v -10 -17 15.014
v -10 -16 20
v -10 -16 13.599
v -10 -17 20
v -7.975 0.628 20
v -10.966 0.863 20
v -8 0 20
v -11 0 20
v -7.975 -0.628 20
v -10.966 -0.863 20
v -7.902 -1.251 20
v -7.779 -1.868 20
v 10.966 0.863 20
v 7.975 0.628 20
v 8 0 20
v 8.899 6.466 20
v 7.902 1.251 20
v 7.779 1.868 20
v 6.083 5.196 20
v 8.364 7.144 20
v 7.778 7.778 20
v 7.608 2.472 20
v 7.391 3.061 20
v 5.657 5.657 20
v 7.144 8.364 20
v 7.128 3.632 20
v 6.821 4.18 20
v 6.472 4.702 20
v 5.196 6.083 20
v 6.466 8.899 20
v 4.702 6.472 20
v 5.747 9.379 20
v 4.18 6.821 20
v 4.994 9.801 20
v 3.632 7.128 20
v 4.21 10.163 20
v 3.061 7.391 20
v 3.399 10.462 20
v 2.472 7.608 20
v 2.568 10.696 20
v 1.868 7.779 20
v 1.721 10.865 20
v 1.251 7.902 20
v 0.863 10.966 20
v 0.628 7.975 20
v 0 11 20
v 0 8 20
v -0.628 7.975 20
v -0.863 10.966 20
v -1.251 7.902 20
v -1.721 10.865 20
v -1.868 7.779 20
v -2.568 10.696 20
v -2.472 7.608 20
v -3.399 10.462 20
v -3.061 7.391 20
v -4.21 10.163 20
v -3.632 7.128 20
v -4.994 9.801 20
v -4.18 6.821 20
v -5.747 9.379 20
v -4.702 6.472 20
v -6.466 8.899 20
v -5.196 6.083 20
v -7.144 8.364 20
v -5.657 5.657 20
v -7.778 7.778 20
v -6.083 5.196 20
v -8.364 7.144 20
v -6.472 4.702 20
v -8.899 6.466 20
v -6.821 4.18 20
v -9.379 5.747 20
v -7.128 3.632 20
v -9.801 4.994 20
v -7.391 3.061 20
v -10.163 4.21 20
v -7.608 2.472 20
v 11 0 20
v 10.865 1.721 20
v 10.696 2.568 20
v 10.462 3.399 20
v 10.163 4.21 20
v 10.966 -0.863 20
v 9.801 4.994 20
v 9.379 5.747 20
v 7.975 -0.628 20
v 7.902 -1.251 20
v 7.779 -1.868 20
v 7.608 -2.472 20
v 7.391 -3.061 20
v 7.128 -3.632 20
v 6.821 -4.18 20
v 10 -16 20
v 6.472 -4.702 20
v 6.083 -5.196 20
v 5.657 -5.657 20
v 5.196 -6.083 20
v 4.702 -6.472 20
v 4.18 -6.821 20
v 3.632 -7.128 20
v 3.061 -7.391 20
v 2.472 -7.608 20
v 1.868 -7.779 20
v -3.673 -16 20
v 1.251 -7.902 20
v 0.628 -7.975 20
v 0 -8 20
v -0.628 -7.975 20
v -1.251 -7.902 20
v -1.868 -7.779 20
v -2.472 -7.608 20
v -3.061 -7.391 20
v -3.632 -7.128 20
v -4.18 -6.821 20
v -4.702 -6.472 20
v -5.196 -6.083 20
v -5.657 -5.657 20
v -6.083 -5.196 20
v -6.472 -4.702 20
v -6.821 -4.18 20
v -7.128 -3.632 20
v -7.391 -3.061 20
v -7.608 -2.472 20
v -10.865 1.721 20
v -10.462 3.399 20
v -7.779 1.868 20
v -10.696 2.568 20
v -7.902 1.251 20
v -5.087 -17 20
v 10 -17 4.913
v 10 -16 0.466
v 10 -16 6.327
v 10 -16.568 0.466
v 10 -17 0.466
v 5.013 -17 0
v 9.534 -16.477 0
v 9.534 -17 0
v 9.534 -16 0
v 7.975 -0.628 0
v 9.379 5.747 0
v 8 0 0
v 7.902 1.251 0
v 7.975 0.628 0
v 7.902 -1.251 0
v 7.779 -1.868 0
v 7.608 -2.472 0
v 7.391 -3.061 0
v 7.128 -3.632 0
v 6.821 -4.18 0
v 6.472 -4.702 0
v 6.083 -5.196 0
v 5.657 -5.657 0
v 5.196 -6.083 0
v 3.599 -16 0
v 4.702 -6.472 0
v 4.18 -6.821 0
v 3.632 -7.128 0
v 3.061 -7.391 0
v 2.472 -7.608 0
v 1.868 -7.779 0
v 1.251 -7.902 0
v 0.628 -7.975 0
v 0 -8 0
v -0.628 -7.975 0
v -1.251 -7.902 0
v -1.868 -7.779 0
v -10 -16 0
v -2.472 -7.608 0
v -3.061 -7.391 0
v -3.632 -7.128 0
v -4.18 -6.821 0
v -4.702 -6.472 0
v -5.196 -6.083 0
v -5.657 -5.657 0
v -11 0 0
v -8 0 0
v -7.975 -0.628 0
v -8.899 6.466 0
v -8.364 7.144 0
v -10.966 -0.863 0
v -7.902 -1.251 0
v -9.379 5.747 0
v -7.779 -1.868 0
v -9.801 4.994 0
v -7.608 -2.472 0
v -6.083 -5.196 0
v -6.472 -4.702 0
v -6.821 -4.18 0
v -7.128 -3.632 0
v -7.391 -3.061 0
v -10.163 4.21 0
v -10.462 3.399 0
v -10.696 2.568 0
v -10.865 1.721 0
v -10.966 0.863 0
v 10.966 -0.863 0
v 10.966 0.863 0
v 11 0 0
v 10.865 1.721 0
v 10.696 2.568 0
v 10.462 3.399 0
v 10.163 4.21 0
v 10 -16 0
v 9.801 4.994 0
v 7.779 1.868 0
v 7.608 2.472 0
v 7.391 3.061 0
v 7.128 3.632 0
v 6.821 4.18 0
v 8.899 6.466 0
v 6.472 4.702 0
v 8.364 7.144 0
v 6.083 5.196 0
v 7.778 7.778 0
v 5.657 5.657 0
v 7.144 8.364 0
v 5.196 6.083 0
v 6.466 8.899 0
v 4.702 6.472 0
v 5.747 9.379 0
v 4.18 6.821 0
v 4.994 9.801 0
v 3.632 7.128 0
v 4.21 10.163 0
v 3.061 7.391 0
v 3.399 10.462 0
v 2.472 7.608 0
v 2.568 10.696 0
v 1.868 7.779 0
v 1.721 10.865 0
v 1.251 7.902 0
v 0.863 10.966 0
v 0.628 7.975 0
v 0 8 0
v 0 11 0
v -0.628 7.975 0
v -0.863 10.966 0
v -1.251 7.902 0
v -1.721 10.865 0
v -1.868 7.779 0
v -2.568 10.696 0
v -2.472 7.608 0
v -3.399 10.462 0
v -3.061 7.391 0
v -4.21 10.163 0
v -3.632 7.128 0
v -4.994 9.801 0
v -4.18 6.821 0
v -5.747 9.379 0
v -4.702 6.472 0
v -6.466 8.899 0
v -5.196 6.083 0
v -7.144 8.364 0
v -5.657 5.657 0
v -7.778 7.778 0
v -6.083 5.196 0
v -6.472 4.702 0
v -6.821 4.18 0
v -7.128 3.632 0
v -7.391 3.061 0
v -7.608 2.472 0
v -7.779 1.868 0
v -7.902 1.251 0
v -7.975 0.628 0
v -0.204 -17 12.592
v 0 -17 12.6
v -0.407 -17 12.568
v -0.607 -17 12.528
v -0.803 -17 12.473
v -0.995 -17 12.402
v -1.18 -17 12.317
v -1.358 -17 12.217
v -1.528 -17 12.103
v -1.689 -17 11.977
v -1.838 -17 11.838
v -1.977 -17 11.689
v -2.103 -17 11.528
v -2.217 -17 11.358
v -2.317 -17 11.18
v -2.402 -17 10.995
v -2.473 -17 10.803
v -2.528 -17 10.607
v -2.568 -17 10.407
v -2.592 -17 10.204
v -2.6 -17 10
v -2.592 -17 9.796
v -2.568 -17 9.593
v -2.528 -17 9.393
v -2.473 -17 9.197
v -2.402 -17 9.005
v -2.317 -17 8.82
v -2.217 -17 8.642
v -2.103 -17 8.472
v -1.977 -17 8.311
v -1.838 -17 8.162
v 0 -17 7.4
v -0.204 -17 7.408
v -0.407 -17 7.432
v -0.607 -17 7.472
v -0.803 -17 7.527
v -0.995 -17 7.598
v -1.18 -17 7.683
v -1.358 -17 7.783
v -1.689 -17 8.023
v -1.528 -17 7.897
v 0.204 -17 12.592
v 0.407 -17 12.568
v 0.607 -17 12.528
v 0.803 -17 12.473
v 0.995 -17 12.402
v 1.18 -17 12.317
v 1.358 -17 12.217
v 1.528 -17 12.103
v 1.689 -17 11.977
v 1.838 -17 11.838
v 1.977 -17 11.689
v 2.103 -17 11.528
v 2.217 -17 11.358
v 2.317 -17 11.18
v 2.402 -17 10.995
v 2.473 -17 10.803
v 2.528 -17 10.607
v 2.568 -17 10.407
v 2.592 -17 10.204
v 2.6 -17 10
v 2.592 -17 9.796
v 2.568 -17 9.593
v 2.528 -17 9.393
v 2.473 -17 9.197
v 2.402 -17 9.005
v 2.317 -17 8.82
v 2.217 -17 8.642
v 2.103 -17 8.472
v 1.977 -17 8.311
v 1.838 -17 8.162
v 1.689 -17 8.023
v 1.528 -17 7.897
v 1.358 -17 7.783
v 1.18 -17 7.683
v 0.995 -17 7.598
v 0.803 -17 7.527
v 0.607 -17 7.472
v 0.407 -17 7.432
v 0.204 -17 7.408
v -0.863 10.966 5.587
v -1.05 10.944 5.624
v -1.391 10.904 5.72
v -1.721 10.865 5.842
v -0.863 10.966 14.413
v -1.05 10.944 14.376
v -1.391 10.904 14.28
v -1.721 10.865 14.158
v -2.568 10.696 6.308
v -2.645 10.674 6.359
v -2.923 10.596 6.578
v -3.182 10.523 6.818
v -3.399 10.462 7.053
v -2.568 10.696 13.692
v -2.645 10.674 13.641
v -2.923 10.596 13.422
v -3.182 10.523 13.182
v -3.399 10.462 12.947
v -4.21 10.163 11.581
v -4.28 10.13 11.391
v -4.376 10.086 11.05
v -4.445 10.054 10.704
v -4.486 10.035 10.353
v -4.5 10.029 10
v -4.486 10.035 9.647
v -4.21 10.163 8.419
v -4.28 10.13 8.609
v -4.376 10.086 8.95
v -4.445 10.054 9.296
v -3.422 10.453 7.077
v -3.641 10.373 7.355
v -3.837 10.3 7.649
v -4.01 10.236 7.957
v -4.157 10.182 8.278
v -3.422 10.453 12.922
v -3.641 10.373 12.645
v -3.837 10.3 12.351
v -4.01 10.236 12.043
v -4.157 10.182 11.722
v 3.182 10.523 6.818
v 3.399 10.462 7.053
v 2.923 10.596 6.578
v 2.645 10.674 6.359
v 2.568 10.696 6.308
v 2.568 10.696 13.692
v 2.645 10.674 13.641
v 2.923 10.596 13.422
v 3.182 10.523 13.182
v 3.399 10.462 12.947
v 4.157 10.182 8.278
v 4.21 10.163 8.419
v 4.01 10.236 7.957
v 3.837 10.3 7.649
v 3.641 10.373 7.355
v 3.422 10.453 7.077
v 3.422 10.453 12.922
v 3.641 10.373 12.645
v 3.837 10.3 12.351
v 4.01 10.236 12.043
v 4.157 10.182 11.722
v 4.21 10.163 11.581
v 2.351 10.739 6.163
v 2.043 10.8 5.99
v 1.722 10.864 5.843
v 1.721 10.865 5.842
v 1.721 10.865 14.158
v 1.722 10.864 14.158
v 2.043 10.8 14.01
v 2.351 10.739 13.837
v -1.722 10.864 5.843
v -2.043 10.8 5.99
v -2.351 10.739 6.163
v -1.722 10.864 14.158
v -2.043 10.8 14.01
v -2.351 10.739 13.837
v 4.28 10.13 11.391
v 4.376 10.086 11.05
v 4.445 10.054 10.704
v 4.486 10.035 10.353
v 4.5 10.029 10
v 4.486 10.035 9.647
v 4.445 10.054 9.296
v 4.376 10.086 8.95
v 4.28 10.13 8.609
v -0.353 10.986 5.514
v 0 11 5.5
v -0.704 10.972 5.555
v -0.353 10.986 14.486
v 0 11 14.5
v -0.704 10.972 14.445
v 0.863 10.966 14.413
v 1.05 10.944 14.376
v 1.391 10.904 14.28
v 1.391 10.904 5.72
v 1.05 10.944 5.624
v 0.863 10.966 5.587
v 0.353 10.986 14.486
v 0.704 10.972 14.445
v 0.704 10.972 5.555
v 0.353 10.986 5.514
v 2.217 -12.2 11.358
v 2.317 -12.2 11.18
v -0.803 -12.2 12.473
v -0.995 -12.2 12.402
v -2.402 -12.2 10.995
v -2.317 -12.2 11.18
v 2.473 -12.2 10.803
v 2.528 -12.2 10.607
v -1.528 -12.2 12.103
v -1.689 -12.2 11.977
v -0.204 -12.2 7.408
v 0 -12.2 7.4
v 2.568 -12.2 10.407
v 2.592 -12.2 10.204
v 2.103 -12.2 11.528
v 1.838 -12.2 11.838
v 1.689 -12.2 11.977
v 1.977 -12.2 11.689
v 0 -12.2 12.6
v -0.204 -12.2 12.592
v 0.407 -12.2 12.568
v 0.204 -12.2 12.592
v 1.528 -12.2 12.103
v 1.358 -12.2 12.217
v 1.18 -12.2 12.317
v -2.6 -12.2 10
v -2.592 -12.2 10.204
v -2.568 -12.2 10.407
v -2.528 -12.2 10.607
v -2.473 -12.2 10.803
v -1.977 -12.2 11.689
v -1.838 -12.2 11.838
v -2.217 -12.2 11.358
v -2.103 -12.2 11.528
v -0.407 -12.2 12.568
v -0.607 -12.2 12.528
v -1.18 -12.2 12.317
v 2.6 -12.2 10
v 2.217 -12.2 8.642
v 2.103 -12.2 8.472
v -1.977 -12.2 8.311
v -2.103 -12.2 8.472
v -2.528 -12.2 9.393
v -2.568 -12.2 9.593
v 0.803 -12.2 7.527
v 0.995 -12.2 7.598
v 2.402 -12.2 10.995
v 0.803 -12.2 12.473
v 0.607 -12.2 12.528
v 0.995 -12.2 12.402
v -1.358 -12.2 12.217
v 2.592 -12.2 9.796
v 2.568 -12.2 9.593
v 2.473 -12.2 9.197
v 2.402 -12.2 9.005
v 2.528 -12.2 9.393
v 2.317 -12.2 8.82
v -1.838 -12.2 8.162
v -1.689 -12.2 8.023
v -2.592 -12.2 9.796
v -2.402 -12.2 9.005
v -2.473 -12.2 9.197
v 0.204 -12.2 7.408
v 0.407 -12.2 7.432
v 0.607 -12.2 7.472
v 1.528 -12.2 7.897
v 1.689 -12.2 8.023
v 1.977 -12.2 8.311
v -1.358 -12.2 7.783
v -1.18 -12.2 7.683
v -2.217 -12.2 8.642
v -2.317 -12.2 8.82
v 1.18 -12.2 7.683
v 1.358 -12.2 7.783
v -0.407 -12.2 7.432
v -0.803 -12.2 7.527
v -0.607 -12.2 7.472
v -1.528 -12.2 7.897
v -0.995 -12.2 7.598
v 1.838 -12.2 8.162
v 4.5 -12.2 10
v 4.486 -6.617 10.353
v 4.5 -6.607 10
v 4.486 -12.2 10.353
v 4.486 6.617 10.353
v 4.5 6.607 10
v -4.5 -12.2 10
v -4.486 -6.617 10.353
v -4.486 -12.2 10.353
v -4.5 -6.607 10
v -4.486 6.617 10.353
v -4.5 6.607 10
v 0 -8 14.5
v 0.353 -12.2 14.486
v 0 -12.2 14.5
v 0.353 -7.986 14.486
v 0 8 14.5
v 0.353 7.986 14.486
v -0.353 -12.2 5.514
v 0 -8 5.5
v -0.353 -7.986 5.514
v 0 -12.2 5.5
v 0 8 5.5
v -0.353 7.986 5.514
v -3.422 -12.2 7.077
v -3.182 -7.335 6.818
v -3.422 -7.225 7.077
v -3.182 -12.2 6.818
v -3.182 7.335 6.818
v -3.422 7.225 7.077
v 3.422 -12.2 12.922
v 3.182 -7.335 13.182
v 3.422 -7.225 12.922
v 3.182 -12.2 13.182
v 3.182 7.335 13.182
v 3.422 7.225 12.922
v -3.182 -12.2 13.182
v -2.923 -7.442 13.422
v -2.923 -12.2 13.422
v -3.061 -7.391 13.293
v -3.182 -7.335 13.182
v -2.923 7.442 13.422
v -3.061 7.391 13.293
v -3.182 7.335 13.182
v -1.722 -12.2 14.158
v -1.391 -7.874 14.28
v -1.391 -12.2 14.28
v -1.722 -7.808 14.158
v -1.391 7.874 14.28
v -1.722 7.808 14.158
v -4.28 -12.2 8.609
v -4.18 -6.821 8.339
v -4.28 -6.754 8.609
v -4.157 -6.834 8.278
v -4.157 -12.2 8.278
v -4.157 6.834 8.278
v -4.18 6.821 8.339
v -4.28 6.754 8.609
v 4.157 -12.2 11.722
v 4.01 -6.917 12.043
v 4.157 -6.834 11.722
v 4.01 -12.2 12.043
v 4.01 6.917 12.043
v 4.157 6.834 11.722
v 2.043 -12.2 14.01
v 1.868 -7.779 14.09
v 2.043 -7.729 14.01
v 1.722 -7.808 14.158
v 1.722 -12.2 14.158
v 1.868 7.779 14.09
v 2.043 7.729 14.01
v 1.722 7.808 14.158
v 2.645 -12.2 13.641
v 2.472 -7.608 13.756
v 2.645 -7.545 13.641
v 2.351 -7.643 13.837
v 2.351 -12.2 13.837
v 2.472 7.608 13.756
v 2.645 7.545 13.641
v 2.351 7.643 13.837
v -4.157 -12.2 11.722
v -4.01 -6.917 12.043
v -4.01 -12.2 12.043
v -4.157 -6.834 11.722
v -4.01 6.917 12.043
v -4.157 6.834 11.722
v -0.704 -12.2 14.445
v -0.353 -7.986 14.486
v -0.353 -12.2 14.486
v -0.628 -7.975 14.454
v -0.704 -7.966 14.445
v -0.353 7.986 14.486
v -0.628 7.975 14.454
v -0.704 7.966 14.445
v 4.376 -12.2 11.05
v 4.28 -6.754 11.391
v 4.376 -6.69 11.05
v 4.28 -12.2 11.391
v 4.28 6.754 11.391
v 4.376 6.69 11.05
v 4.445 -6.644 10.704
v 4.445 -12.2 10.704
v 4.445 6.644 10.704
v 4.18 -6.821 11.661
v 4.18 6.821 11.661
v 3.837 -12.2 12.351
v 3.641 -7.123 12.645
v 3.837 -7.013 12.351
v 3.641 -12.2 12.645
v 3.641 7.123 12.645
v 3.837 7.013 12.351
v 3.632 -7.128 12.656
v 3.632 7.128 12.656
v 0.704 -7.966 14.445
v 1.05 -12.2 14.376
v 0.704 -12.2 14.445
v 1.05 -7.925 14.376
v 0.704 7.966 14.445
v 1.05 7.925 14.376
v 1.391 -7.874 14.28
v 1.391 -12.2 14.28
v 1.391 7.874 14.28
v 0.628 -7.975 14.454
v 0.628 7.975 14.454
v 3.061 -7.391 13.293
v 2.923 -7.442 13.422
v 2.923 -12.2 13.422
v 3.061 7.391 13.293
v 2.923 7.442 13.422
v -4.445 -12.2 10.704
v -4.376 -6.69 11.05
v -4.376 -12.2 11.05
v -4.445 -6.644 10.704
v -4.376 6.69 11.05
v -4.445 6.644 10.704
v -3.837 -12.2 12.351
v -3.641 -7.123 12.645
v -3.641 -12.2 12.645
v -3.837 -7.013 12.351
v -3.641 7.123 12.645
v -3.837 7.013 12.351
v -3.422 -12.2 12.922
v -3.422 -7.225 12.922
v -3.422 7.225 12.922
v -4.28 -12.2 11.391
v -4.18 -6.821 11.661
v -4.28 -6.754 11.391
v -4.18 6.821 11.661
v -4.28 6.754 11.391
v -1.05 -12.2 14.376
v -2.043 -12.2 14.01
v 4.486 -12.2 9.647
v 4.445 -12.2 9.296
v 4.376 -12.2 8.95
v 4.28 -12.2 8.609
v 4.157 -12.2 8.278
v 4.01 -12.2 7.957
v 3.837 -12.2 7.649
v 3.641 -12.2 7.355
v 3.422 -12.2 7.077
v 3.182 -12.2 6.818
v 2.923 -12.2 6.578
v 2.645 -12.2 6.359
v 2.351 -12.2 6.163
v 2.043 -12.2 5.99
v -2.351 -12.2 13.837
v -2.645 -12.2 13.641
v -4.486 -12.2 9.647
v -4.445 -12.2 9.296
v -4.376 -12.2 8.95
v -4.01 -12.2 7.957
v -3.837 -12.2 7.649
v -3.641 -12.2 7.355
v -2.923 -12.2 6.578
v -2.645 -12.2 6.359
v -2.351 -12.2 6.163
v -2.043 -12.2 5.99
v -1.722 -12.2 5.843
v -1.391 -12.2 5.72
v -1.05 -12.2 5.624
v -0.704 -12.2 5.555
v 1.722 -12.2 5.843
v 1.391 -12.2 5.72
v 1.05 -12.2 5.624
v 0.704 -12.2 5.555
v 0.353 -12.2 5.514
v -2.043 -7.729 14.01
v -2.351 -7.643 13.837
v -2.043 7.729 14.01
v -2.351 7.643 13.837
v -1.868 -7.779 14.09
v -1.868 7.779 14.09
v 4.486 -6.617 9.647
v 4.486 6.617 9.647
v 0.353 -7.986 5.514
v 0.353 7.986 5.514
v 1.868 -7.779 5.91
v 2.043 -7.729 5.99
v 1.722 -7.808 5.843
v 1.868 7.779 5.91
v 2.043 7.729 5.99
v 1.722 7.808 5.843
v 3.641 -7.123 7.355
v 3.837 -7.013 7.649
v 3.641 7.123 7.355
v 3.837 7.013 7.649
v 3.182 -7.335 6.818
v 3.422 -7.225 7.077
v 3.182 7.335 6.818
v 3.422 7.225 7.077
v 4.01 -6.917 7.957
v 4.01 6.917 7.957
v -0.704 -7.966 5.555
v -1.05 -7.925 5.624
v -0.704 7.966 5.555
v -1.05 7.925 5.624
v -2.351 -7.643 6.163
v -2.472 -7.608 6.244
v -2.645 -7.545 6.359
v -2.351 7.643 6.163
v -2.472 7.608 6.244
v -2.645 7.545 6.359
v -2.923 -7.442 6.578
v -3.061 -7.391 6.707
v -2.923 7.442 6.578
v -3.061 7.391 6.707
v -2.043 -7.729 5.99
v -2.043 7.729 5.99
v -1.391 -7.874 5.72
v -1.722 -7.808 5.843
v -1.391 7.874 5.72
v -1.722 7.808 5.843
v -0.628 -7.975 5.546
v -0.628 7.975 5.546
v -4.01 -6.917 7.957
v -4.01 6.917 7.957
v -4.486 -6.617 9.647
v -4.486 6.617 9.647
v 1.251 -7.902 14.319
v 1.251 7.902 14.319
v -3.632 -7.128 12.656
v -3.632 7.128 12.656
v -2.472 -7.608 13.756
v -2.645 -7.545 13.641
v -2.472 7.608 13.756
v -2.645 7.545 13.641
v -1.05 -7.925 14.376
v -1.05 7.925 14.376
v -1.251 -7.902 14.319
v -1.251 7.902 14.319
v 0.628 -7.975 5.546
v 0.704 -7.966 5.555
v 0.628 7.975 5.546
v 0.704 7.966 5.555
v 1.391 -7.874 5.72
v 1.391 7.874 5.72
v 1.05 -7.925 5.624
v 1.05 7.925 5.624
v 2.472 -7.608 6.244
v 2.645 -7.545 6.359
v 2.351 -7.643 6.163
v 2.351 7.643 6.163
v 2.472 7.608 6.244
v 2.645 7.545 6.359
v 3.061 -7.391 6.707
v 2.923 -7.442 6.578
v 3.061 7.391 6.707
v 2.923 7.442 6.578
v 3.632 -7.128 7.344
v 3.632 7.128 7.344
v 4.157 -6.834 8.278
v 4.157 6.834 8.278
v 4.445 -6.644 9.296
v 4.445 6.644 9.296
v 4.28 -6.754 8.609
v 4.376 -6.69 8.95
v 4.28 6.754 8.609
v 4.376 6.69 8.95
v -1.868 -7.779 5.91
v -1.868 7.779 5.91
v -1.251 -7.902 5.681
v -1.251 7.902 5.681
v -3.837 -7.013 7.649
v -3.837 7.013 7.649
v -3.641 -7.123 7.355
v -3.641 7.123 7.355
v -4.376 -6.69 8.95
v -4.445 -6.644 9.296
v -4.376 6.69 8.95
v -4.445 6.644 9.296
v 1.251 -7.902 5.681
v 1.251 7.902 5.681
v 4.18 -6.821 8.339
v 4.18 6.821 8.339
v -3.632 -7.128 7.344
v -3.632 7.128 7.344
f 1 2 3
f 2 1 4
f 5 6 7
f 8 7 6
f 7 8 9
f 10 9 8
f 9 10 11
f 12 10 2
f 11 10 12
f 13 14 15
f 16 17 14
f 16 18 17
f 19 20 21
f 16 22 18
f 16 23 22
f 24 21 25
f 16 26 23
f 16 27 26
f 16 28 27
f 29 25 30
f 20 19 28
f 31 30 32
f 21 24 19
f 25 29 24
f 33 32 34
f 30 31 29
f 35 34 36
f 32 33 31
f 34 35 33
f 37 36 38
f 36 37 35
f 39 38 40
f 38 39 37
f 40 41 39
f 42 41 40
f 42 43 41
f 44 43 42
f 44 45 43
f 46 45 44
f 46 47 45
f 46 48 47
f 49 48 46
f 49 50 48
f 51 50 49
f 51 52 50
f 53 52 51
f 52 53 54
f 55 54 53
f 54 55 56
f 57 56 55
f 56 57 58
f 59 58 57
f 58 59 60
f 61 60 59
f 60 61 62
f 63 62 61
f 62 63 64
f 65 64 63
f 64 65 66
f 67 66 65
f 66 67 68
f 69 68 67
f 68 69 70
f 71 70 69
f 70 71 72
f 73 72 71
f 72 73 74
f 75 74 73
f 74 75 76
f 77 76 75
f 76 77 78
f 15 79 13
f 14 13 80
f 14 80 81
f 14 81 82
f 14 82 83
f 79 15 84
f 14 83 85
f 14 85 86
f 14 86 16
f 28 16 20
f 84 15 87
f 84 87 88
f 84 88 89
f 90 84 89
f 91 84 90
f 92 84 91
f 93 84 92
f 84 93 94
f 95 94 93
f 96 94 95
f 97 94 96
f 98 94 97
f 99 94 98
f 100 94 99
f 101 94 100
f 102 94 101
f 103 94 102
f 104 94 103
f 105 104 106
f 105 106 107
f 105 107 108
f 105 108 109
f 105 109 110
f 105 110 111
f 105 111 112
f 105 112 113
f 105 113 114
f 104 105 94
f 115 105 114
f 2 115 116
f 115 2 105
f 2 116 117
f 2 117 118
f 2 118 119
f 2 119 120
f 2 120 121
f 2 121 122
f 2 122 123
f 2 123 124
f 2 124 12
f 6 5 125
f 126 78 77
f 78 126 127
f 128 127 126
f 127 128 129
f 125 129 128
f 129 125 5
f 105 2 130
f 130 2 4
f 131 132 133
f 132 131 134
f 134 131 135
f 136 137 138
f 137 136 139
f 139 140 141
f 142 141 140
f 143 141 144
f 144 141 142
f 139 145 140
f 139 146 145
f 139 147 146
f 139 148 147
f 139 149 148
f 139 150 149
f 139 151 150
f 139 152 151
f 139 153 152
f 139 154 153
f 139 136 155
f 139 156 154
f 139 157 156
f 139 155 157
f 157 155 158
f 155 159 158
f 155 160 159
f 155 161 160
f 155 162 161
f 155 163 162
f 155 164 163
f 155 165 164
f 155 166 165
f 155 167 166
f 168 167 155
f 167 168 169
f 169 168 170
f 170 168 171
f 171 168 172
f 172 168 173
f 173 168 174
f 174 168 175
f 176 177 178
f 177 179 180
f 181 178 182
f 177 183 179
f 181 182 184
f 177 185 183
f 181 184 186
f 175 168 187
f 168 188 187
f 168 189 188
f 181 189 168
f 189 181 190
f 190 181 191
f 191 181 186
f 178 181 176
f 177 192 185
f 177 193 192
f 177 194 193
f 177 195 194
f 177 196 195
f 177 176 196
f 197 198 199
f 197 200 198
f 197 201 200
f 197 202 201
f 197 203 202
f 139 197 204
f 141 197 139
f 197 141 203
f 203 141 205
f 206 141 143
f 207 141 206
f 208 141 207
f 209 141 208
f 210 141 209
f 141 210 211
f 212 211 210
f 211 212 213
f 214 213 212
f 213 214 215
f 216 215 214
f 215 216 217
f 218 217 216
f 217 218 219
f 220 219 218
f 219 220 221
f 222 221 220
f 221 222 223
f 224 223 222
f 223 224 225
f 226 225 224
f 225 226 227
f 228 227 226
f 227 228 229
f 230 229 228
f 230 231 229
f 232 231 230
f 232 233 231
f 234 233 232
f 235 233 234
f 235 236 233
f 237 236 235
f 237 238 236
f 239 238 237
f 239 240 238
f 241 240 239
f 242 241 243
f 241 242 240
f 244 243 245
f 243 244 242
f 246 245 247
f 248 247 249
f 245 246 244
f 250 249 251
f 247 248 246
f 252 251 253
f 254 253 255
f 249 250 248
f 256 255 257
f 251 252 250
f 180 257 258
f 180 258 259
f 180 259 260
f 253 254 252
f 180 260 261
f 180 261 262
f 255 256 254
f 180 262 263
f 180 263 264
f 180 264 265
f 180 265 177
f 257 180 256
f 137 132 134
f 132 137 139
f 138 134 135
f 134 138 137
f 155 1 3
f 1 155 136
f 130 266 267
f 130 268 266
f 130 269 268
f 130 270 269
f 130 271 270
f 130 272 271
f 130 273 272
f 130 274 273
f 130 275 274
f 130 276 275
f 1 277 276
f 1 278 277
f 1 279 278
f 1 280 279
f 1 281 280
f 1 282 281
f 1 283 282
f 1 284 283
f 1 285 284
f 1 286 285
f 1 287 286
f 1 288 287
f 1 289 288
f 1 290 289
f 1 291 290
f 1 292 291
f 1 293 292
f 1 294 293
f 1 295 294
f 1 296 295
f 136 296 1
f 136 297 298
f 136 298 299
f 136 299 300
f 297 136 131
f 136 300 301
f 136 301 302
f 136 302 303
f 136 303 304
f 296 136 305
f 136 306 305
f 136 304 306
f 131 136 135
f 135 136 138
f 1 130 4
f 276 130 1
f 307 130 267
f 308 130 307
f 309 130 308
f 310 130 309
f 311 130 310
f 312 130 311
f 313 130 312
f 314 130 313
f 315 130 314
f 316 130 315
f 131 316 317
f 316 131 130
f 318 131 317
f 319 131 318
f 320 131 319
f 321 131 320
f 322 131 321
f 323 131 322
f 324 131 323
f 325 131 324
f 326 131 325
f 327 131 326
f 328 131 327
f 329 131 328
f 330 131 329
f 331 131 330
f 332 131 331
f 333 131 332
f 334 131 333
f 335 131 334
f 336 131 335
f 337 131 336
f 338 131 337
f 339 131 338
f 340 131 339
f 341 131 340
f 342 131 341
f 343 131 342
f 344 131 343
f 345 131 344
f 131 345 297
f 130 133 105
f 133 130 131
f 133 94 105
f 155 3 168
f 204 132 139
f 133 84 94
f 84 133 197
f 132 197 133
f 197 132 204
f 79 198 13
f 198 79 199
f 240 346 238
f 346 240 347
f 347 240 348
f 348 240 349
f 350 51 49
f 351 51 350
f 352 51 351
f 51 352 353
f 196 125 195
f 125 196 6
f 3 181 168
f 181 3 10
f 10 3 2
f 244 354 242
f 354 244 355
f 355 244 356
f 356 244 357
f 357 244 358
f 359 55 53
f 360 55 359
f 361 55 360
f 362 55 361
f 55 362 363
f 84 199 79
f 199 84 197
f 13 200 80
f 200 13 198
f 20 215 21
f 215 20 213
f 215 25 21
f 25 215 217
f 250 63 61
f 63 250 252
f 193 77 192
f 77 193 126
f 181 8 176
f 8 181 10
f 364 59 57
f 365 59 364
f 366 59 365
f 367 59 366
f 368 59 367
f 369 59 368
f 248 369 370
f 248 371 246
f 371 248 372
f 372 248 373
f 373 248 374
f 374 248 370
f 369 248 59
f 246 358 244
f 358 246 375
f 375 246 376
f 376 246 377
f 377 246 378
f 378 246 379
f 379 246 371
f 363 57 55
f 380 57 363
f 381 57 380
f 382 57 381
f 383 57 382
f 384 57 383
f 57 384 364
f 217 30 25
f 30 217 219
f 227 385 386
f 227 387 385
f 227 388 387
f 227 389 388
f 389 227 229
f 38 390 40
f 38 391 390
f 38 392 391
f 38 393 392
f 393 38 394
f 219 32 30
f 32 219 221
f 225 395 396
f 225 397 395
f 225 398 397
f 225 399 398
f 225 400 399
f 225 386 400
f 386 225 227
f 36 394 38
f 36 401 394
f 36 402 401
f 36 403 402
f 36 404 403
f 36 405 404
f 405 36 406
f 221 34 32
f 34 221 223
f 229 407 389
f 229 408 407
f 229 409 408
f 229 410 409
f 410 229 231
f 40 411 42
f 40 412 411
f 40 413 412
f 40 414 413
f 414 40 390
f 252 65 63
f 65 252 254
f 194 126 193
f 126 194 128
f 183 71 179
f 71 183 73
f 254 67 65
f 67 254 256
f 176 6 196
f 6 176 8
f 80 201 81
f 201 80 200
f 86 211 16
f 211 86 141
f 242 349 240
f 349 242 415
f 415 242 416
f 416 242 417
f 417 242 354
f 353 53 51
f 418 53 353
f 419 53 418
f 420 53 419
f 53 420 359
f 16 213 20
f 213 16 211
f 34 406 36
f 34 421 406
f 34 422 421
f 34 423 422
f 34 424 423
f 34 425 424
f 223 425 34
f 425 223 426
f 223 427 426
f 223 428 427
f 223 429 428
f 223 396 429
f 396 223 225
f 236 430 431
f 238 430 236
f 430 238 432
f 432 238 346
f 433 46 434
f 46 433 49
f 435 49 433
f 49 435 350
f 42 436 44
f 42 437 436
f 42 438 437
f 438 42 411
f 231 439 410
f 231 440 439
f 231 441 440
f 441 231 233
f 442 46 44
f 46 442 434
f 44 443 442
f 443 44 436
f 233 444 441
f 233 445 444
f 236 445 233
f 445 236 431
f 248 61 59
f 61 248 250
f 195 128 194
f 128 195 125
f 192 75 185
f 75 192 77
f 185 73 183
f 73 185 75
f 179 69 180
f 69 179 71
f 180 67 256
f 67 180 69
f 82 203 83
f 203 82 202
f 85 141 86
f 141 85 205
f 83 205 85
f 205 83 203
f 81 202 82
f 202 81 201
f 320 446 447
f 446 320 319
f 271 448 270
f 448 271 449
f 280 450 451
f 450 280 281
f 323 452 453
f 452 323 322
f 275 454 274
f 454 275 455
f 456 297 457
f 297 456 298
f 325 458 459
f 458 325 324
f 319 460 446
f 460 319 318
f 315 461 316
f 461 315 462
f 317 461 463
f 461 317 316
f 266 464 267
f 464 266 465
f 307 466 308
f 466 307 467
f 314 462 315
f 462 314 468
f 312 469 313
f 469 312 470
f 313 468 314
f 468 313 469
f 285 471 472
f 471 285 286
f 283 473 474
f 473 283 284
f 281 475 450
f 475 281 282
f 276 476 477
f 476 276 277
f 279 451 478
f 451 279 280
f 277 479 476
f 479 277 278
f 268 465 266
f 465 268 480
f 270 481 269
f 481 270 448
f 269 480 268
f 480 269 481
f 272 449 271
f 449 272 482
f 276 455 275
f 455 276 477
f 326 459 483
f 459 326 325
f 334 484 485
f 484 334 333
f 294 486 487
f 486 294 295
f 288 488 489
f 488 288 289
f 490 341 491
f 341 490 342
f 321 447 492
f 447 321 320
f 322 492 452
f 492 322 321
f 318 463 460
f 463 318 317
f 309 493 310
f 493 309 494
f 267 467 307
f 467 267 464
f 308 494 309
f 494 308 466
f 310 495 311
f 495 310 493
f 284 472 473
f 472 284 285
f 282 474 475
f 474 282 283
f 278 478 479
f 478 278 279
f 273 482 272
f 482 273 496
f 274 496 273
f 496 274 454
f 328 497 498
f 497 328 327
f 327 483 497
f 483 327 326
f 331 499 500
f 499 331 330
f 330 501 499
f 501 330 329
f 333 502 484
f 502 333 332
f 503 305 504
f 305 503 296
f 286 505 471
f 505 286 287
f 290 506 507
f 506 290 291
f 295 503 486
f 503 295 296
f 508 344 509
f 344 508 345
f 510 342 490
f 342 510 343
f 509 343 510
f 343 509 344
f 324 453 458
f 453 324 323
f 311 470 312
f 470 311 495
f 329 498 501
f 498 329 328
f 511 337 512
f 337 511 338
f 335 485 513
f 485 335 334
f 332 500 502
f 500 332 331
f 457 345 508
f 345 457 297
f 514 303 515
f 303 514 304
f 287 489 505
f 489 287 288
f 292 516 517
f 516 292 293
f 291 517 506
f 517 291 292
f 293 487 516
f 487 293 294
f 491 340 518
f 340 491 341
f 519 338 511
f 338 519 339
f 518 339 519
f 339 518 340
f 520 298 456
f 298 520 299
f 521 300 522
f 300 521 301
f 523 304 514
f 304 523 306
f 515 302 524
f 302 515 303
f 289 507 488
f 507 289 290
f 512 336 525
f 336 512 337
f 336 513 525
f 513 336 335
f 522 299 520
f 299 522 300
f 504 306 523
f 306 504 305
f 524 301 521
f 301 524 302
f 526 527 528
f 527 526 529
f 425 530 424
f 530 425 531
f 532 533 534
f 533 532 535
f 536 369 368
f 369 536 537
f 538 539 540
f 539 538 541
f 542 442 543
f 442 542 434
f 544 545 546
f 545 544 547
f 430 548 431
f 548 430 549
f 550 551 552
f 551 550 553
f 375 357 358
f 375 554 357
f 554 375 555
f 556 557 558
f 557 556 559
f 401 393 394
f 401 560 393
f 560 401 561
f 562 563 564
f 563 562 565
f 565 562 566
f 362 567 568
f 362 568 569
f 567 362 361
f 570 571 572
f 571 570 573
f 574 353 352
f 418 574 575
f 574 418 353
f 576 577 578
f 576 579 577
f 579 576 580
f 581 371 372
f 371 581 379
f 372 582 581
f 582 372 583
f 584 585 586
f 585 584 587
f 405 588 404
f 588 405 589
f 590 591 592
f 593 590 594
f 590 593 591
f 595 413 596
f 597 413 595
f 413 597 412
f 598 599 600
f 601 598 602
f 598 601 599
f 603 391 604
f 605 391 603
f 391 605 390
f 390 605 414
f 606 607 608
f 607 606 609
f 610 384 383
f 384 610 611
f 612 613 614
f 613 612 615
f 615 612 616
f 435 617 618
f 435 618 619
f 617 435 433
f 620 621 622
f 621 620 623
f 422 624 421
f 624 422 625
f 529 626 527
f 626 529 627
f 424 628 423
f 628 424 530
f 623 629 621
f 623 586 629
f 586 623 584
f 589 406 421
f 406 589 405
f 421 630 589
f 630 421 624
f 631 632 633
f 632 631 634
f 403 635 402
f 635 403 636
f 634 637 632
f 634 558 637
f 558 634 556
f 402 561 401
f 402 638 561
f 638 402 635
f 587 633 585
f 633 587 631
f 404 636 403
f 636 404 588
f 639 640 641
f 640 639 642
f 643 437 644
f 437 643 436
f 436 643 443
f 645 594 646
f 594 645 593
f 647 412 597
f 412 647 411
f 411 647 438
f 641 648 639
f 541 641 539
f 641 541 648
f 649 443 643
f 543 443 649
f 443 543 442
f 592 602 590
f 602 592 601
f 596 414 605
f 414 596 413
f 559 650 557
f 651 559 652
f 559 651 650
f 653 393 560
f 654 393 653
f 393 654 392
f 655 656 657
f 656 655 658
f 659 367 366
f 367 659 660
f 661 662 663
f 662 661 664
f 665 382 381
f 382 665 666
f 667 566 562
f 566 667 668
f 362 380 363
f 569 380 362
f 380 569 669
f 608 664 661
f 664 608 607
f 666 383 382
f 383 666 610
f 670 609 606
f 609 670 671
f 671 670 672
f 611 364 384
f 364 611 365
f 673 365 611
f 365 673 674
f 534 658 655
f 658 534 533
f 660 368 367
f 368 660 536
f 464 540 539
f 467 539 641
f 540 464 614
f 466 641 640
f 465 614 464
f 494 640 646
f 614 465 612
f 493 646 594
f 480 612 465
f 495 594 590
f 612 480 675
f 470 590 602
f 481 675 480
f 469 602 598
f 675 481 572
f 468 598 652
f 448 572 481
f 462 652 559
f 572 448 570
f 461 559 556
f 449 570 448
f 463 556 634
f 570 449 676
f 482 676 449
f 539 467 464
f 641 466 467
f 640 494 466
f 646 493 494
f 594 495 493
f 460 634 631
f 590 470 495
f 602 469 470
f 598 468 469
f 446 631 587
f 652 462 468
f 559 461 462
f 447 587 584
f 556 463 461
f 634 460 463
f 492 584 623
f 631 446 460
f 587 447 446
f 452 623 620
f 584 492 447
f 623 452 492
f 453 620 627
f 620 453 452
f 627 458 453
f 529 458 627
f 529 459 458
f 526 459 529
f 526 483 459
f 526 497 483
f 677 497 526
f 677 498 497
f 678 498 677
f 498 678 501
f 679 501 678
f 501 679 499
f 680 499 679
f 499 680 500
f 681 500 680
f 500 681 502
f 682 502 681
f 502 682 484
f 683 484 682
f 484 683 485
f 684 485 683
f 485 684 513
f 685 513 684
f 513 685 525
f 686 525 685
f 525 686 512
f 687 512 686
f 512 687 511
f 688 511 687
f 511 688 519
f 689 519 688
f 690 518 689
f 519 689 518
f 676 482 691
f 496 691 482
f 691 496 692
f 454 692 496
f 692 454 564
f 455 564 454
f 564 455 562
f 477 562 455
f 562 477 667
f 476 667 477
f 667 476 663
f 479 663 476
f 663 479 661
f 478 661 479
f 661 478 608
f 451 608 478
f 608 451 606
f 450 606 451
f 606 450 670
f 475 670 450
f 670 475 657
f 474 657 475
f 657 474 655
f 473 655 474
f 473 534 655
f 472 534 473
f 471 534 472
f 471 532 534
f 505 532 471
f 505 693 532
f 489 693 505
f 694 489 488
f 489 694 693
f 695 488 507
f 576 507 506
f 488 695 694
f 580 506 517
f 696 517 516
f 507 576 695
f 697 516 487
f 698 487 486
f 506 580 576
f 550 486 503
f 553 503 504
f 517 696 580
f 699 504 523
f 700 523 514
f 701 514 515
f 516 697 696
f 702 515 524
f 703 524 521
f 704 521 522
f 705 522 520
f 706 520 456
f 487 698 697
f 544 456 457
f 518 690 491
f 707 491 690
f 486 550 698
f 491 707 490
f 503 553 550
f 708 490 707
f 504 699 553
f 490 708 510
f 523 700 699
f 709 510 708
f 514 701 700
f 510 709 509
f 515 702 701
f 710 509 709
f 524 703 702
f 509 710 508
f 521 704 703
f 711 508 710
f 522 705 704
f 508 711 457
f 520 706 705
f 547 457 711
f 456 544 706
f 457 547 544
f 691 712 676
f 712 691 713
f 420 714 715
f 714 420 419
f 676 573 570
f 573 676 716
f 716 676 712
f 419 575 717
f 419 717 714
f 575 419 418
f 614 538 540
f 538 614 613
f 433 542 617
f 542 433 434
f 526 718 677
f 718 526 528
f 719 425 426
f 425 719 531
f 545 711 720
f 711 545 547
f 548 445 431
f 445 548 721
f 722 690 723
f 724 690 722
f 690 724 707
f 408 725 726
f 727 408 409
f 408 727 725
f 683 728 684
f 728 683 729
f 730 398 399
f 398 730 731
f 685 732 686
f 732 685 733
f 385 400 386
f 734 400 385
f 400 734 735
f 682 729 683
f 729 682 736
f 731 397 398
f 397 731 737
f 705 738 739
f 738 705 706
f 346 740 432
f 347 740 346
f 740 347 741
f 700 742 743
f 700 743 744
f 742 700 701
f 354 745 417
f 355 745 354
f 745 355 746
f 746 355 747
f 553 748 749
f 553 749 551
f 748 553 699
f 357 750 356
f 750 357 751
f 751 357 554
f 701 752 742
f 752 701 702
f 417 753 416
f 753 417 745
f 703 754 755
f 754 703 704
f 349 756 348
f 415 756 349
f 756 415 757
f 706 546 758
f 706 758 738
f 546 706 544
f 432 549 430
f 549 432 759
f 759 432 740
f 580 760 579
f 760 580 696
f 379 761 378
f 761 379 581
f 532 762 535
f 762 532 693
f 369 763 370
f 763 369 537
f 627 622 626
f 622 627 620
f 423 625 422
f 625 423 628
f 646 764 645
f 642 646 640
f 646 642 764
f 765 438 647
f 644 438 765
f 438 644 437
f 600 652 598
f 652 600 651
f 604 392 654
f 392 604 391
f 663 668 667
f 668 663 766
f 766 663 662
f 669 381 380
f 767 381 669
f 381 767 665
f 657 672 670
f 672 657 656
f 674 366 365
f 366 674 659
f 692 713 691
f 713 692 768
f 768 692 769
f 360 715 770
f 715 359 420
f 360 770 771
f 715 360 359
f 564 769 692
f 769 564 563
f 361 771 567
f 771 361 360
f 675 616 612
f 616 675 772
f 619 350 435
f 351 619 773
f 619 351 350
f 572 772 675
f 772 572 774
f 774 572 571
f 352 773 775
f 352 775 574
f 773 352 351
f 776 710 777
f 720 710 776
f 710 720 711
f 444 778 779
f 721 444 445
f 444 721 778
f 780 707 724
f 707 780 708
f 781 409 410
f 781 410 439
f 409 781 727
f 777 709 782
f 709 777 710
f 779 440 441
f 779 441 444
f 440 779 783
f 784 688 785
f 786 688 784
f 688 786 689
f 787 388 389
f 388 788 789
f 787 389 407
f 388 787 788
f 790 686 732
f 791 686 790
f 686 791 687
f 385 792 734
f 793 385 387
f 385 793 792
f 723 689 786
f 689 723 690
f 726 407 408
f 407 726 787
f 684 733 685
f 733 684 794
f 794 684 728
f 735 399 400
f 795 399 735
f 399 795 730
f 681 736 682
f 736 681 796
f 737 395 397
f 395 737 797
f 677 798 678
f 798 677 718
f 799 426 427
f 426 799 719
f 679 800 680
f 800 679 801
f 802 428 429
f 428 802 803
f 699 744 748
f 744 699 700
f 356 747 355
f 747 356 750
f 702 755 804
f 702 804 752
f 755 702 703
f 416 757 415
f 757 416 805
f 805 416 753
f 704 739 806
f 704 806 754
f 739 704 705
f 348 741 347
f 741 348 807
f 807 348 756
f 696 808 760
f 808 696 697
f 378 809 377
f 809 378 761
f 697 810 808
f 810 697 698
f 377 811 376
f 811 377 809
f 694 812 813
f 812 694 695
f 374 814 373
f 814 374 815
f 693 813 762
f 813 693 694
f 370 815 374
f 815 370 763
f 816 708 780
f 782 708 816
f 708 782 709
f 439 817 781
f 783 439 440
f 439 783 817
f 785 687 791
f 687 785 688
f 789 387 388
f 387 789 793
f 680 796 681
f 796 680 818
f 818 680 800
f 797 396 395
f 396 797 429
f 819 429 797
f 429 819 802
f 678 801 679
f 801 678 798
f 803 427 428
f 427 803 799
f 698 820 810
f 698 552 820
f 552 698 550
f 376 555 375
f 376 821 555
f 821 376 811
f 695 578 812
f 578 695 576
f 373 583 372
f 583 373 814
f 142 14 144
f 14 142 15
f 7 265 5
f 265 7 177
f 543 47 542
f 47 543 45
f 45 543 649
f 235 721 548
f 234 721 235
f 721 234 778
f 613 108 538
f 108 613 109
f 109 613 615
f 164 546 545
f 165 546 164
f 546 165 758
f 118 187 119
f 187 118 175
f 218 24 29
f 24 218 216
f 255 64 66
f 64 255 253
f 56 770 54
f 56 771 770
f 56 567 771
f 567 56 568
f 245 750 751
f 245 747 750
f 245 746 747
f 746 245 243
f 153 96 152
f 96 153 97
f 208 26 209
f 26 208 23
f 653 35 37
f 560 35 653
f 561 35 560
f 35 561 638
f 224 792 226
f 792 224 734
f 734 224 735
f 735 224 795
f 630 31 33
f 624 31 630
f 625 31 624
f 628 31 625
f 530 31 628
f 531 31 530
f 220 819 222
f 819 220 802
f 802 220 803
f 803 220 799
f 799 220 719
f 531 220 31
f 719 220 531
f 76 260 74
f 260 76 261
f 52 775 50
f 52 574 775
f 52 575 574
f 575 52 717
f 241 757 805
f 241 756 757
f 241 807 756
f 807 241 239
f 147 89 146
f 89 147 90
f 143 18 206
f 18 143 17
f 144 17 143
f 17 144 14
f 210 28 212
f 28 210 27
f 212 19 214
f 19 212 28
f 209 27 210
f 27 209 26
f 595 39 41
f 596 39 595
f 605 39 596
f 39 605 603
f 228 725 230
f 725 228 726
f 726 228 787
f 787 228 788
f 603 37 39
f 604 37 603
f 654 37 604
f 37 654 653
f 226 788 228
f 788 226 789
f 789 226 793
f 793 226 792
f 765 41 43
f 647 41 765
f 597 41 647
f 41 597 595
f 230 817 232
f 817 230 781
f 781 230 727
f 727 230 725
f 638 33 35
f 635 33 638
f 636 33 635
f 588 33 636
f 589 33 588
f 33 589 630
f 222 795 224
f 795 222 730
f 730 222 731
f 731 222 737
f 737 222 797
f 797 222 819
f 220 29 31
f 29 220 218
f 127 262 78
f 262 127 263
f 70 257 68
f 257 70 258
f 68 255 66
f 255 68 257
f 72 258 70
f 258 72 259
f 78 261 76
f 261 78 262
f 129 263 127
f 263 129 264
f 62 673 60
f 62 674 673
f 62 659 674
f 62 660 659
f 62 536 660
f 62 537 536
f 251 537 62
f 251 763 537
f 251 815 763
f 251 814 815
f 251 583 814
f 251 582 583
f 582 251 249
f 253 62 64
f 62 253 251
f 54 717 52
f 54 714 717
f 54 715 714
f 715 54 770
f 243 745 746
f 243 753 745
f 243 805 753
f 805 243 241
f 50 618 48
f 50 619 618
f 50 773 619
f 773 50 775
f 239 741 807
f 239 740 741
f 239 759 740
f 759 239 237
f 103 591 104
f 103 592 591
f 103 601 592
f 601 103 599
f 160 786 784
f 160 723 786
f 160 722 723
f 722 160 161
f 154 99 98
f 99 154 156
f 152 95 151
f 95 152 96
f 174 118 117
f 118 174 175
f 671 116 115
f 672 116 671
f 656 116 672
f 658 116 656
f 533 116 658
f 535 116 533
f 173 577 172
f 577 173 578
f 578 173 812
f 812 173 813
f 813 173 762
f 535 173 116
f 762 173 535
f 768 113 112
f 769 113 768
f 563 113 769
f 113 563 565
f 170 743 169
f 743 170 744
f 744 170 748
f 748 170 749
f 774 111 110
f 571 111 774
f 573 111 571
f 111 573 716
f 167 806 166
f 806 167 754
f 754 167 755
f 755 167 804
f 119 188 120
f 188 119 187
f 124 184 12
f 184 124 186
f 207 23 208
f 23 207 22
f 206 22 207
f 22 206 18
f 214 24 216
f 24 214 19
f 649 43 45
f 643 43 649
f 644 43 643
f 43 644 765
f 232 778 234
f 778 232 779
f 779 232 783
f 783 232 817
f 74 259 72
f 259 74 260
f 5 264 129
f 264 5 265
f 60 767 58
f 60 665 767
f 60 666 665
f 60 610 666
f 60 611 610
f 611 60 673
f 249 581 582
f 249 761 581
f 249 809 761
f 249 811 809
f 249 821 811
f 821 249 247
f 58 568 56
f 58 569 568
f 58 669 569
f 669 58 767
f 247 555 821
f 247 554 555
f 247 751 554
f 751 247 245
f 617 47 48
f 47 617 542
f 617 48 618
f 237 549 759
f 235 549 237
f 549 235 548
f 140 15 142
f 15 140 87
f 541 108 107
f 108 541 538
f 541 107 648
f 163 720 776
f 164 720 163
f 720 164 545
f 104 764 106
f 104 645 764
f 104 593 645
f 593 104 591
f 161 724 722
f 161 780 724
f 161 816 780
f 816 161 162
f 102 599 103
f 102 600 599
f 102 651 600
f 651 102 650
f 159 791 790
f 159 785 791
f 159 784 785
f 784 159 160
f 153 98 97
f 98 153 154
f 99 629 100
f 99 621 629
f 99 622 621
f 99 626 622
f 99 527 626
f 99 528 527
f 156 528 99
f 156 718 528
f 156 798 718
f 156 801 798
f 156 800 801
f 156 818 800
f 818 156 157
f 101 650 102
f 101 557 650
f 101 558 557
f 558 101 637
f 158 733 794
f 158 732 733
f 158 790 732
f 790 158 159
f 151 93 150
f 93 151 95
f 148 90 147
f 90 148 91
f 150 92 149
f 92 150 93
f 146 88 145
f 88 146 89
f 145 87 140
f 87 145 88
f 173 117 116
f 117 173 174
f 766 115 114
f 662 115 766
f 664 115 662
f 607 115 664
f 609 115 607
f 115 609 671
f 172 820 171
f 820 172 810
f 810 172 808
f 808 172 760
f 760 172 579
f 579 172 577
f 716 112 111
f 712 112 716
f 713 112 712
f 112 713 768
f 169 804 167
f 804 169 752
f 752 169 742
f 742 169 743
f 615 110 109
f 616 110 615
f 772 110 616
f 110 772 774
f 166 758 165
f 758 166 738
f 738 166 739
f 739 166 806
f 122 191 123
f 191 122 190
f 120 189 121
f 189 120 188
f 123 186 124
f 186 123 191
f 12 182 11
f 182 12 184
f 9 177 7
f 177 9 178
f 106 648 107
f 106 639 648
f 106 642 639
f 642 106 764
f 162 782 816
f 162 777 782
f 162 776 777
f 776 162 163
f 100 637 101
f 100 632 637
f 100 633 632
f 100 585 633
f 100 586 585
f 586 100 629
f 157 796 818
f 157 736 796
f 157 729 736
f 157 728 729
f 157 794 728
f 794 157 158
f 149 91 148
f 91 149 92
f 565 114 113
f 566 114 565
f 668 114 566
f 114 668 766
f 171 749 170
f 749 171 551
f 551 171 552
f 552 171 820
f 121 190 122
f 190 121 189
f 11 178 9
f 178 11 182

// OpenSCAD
$fn=80;

difference() {
   union() {
      translate([-15,-16,0]) {
         hull() {
            translate([5,0,0]) cube([20,10,20]);
            translate([15,16,0]) cylinder(d=22,h=20);
         }

         /* angled bit to fit in v-slot */
         intersection() { 
           translate([5,-1,0]) cube([20,10,20]);
           translate([0,0,3.75]) rotate([0,-45,0]) translate([0,0,-15])
           translate([19.5,0,-5]) rotate([0,0,180])
              linear_extrude(height=30)
              polygon(points=[[-0.1,0],[0,0],[1,1],[8,1],[9,0],[9,-0.1]]);
         }
        }
   }

   /* conduit hole */
   translate([0,0,-0.5]) cylinder(d=16,h=21);
   translate([0,-2.2,10]) rotate([90,0,0]) {
      /* bolt holes */
      translate([0,0,14-4.8]) cylinder(h=15,d=5.2);

      /* cap holes (with a little gap to allow bridging */
      translate([0,0,-20]) cylinder(h=30,d=9);
   }
}
